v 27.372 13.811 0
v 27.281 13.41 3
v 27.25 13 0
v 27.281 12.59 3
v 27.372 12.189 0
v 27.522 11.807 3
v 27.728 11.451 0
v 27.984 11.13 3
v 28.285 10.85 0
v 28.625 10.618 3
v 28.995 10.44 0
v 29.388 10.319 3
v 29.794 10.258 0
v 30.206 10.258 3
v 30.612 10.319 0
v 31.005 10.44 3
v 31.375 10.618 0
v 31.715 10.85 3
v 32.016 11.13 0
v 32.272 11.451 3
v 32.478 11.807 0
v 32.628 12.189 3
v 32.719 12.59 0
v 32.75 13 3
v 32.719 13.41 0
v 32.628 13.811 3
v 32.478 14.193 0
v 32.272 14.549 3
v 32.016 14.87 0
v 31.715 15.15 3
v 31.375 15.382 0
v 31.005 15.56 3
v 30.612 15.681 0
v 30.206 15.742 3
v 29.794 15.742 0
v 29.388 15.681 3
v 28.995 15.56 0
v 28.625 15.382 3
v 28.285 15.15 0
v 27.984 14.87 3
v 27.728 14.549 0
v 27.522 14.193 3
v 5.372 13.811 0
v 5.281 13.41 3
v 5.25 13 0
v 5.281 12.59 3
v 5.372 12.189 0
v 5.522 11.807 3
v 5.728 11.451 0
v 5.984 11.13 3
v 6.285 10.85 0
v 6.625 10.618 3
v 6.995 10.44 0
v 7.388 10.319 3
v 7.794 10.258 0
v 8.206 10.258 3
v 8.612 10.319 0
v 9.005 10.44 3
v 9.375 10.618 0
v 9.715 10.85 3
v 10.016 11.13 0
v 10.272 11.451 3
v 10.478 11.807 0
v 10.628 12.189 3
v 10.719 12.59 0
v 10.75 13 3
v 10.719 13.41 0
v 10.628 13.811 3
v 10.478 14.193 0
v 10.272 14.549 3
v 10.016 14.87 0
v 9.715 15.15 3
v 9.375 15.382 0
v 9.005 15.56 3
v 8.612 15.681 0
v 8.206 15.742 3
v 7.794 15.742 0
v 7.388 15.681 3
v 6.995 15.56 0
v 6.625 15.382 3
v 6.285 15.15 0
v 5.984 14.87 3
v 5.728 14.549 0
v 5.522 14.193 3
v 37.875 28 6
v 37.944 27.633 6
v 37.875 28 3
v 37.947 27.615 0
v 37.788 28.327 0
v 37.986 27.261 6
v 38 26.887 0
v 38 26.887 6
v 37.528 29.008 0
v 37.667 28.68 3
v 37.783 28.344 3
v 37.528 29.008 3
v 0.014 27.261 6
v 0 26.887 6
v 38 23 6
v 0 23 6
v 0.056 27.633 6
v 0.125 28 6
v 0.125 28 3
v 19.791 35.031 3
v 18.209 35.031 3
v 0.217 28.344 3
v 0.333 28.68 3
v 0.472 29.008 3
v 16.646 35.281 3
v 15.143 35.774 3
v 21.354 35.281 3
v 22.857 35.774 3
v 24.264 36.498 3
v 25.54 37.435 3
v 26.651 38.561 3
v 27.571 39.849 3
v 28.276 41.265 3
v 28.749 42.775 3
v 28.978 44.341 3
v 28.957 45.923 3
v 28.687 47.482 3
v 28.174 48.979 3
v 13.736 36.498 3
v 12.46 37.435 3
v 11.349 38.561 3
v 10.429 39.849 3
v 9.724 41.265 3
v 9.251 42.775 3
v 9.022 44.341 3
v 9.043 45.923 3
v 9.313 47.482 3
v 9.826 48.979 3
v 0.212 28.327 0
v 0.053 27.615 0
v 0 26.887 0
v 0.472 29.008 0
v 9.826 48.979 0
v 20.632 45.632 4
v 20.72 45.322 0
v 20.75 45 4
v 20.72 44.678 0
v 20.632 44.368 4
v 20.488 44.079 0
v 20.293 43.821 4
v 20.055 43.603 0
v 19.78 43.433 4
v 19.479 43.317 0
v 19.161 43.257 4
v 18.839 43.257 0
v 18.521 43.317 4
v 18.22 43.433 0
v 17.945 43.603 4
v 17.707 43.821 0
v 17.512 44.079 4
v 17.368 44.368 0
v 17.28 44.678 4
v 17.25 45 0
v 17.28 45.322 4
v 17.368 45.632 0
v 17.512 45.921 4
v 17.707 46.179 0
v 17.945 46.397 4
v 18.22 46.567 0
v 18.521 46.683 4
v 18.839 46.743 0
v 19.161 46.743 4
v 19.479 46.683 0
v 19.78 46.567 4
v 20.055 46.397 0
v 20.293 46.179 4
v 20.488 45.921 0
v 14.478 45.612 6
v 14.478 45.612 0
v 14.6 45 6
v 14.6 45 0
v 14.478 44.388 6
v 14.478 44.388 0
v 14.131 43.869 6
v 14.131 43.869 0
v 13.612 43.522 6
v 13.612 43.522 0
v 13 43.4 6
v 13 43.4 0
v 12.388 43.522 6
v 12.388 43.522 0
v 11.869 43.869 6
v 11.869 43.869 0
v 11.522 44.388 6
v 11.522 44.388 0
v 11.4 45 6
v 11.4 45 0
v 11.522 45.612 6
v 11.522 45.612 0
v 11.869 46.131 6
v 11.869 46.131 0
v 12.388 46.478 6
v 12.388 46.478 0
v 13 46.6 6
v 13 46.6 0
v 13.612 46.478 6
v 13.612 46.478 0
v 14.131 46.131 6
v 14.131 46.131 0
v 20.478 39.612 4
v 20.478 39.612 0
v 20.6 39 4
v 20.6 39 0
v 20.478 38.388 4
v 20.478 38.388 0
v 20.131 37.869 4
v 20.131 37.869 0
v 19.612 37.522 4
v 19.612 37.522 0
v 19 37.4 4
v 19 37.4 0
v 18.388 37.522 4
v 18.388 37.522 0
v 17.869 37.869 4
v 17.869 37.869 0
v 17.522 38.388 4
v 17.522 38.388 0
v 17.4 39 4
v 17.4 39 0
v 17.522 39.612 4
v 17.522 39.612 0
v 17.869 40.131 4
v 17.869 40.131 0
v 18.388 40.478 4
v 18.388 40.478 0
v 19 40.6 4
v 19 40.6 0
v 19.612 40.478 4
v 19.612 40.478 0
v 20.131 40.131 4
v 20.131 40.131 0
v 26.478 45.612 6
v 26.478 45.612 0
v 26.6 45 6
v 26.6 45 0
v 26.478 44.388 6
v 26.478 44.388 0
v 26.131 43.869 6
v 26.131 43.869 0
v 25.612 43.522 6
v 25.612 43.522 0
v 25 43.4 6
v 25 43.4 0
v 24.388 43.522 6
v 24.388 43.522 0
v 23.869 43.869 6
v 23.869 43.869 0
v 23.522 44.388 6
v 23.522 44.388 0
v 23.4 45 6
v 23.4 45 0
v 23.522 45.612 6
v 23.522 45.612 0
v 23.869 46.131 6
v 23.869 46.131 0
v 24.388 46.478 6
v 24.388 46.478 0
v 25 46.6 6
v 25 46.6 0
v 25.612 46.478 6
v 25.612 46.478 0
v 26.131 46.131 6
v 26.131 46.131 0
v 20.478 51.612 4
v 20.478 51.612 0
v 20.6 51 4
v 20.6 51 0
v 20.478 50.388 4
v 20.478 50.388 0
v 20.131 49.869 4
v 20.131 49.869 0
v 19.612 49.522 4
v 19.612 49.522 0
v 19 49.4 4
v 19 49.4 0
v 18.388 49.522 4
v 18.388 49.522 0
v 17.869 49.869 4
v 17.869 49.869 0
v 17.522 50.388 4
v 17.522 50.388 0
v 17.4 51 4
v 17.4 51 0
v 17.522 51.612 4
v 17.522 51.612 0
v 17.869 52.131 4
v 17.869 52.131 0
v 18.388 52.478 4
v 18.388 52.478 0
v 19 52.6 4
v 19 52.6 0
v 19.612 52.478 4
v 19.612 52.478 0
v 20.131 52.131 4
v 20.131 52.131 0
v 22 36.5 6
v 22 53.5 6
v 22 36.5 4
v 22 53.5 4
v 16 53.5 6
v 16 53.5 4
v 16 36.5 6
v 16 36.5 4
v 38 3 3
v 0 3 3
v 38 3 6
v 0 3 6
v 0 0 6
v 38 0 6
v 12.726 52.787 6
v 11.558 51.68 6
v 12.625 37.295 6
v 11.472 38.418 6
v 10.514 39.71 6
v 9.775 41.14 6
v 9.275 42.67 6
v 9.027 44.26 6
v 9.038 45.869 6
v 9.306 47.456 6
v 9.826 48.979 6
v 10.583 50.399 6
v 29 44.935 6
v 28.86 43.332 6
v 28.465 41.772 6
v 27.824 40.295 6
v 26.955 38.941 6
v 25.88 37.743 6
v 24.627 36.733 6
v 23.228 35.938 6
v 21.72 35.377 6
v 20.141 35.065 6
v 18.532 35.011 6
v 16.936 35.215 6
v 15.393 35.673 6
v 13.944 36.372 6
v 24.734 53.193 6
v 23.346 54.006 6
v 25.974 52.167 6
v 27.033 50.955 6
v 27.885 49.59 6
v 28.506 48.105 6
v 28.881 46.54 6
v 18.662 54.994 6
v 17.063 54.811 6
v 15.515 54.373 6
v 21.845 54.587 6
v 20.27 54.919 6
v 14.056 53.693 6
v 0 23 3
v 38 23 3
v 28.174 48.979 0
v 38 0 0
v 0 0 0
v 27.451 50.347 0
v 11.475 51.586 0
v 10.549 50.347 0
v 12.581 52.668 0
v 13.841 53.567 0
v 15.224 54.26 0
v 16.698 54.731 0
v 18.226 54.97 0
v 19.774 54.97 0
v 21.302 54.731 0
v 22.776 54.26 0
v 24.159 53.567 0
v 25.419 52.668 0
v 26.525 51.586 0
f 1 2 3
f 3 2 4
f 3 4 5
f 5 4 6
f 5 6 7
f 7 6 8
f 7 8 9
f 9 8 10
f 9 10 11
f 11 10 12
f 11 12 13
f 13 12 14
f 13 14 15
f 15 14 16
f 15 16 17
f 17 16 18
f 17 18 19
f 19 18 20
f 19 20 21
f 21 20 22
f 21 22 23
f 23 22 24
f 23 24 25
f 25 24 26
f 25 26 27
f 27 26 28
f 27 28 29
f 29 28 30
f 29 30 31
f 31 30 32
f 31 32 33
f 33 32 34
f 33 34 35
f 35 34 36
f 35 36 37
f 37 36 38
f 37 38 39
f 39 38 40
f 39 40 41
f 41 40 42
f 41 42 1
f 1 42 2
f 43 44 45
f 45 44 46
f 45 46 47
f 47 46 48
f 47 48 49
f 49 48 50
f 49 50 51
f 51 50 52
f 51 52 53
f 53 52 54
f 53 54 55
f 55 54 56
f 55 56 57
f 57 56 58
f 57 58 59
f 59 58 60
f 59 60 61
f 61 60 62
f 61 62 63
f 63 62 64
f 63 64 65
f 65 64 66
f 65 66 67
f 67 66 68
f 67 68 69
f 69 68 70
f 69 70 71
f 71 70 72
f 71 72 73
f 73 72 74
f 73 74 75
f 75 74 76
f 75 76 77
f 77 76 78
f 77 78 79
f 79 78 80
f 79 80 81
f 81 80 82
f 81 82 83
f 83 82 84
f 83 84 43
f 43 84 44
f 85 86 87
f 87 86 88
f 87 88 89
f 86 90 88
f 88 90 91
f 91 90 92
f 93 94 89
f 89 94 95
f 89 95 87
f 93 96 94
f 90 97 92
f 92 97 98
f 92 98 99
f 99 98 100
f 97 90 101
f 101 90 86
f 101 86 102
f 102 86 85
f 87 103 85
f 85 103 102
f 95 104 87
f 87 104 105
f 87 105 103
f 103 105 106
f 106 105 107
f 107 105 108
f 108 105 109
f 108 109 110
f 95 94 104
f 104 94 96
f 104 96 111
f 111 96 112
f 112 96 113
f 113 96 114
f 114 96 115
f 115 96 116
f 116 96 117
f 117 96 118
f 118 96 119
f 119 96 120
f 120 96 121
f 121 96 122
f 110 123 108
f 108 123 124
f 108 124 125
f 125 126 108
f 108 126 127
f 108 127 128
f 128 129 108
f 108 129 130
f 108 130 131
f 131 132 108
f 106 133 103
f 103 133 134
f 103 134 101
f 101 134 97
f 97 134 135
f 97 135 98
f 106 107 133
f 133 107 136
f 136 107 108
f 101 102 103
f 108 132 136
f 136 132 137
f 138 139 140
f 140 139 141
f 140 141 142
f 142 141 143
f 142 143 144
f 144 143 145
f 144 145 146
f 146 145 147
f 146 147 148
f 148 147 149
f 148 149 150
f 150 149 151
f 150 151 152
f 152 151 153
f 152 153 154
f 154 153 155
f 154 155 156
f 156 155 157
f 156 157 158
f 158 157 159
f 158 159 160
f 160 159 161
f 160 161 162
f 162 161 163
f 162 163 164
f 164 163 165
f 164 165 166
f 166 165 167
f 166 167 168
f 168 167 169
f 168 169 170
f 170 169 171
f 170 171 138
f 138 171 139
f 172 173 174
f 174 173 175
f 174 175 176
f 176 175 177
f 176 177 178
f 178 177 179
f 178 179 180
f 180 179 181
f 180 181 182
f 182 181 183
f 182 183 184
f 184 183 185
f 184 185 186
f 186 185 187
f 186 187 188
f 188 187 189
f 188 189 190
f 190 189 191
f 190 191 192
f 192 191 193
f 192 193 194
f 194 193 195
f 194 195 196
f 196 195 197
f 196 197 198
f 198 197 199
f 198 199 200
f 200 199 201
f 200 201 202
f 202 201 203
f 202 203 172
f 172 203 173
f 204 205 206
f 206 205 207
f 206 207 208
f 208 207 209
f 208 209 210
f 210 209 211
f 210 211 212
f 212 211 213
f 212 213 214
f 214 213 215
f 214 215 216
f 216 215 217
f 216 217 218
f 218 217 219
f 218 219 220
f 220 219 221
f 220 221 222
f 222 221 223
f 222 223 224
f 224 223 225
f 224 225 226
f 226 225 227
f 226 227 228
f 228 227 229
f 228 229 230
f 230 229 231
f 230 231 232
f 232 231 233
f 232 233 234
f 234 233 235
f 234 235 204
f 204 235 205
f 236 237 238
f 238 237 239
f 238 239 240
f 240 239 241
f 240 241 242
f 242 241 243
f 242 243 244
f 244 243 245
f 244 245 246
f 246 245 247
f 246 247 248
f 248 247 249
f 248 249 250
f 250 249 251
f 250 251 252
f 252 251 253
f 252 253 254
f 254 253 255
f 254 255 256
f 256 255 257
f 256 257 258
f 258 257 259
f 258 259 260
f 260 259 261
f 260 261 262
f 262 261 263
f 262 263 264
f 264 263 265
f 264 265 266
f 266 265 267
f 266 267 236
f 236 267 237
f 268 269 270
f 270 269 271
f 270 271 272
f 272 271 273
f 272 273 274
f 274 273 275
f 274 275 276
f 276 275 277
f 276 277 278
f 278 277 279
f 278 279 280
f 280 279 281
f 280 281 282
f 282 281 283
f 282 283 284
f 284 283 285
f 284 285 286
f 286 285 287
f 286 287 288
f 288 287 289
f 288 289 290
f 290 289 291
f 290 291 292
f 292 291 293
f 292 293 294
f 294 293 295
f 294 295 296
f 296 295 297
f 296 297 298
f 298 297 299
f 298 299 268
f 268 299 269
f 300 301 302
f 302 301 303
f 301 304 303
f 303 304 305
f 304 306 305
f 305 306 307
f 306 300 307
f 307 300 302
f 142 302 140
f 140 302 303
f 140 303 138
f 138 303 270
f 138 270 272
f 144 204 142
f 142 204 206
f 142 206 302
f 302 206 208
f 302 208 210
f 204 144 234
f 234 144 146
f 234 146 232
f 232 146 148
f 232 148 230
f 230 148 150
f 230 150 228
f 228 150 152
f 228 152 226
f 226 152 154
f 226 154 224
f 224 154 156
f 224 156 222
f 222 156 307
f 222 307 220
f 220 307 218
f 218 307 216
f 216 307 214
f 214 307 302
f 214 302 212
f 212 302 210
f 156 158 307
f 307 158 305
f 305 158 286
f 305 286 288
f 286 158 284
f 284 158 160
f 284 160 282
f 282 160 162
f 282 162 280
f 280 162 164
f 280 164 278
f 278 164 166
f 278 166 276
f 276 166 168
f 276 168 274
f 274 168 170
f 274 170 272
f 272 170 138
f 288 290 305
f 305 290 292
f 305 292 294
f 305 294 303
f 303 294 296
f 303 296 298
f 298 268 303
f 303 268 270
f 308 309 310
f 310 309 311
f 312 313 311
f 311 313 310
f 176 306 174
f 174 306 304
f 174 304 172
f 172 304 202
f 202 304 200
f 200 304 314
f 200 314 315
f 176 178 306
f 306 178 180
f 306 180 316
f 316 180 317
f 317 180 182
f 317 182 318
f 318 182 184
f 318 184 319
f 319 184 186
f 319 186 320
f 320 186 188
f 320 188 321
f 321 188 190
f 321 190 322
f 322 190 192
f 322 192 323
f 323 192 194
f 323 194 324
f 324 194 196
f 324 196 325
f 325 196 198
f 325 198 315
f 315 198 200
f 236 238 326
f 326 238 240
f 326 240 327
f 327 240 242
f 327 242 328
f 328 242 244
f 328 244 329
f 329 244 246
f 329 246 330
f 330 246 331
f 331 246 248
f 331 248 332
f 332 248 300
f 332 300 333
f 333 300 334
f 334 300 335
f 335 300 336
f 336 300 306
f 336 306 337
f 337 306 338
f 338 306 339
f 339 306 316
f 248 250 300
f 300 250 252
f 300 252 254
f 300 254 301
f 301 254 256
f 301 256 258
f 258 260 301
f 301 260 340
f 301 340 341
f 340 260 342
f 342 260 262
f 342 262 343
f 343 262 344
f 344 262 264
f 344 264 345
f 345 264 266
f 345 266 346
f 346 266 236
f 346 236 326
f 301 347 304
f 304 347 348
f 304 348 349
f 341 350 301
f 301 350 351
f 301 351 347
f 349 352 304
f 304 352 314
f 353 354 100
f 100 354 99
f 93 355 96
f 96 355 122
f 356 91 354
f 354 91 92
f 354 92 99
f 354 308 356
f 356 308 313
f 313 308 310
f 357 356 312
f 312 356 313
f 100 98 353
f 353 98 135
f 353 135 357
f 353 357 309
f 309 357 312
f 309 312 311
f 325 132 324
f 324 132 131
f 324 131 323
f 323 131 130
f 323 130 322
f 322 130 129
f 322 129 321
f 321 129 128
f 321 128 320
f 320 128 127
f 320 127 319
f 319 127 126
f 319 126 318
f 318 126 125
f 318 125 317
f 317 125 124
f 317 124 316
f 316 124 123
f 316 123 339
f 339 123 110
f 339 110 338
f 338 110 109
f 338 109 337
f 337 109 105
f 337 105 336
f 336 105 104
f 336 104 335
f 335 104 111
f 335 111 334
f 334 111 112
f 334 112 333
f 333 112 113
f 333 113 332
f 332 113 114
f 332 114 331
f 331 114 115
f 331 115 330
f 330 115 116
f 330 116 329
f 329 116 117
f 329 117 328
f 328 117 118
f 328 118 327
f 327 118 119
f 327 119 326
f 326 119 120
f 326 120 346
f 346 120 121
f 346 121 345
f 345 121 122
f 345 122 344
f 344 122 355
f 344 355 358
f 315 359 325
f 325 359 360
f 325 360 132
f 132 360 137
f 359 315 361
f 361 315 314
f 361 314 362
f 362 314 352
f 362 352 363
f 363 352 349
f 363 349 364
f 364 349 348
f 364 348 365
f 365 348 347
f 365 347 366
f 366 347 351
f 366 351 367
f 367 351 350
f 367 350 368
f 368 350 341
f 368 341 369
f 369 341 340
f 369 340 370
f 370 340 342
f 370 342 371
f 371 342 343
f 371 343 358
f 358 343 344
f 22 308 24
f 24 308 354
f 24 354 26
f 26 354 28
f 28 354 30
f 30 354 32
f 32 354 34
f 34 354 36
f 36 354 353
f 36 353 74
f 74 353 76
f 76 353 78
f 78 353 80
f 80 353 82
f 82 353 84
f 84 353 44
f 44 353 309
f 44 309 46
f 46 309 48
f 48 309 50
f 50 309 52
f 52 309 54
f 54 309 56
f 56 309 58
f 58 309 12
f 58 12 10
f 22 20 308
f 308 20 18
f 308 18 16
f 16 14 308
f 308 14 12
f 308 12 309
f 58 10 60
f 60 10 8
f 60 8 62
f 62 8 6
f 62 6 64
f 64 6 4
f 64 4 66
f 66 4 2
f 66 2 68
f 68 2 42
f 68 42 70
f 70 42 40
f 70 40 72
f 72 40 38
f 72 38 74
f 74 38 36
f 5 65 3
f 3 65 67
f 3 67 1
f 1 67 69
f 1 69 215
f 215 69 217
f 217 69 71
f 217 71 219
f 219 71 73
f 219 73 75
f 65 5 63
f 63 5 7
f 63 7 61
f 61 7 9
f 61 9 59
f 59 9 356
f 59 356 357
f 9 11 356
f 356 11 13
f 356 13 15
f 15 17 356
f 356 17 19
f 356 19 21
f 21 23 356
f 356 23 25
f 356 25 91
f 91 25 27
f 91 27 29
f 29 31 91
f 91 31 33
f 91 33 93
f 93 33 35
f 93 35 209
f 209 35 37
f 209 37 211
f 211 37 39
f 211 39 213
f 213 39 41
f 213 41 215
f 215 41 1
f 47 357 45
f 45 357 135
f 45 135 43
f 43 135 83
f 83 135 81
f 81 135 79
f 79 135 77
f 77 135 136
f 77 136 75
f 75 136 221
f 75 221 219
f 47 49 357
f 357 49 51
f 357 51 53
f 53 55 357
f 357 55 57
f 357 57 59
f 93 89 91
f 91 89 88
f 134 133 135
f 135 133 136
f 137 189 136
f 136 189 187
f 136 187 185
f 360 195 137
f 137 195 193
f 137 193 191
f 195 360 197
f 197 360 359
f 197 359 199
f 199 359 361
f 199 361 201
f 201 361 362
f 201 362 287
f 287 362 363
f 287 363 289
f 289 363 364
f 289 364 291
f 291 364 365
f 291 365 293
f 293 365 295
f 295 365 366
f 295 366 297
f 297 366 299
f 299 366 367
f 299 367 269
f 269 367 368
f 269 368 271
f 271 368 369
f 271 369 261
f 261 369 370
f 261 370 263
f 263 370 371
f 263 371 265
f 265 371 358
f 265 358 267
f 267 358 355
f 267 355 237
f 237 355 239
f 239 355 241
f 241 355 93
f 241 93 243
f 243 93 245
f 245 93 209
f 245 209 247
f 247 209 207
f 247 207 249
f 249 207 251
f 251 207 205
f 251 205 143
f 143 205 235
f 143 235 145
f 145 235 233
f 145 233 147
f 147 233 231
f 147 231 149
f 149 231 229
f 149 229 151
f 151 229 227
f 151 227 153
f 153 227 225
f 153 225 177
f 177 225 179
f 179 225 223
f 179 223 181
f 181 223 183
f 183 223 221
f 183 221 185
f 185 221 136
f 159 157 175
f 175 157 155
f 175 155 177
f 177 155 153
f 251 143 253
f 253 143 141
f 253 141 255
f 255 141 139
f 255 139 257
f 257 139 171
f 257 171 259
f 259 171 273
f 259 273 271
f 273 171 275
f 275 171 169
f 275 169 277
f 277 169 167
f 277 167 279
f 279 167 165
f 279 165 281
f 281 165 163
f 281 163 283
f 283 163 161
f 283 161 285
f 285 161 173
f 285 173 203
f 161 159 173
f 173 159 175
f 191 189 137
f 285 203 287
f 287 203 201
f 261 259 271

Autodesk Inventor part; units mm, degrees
ref_plane "YZ Plane" through (0, 0, 0) normal (1, 0, 0) x (0, 1, 0)
ref_plane "XZ Plane" through (0, 0, 0) normal (0, 1, 0) x (-1, 0, 0)
ref_plane "XY Plane" through (0, 0, 0) normal (0, 0, 1) x (1, 0, 0)
sketch "スケッチ1" plane through (0, 0, 0) normal (0, 0, 1) x (1, 0, 0)
  line L0 (0, 0) -> (38, 0)
  line L1 (38, 0) -> (38, 28)
  line L2 (0, 28) -> (0, 0)
  circle A0 centre (19, 45) radius 10
  line L3 (19, 45) -> (19, 0)
  line L4 (9, 45) -> (29, 45)
  line L5 (10.069714, 49.5) -> (27.930286, 49.5)
  line L6 (10.069714, 49.5) -> (0, 28)
  line L7 (27.930286, 49.5) -> (38, 28)
  point P0 (28.174131, 48.979363)
  point P1 (9.825869, 48.979363)
  dimension "d0" = 38
  dimension "d1" = 28
  dimension "d3" = 20
  dimension "d56" = 45
  dimension "d71" = 28
  dimension "d73" = 4.5
sketch "スケッチ1 outline for 押し出し1" plane through (0, 0, 0) normal (0, 0, 1) x (1, 0, 0)
  line L0 (9.825869, 48.979363) -> (0, 28)
  line L1 (0, 28) -> (0, 0)
  line L2 (0, 0) -> (38, 0)
  line L3 (38, 0) -> (38, 28)
  line L4 (38, 28) -> (28.174131, 48.979363)
  arc A0 (28.174131, 48.979363) -> (9.825869, 48.979363) centre (19, 45) ccw
extrude "押し出し1" add sketch "スケッチ1 outline for 押し出し1" along normal blind 3
sketch "スケッチ7" plane through (0, 0, 3) normal (0, 0, 1) x (1, 0, 0)
  line L0 (0, 0) -> (38, 0)
  line L1 (38, 0) -> (38, 28)
  line L2 (0, 0) -> (38, 0)
  line L3 (38, 0) -> (38, 3)
  line L4 (38, 3) -> (0, 3)
  line L5 (0, 3) -> (0, 0)
  arc A0 (28.174131, 48.979363) -> (9.825869, 48.979363) centre (19, 45) ccw
  circle A1 centre (19, 45) radius 10
  line L6 (0, 28) -> (0, 0)
  line L7 (0, 28) -> (38, 28)
  line L8 (38, 28) -> (38, 23)
  line L9 (38, 23) -> (0, 23)
  line L10 (0, 23) -> (0, 28)
  point P0 (27.930286, 47.5)
  point P1 (10.069714, 47.5)
  point P2 (0, 23)
  point P3 (29, 43)
  point P4 (9, 43)
  point P5 (10.069714, 47.5)
  point P6 (27.930286, 47.5)
  point P7 (9.486338, 51.080624)
  point P8 (28.513662, 51.080624)
  dimension "d58" = 3
  dimension "d68" = 20
  dimension "d69" = 20
  dimension "d70" = 5
extrude "押し出し4" add sketch "スケッチ7" along normal blind 3 contours L5 L4 L1 L0 | L6 L7 L1 L9 | A1 A0
sketch "スケッチ10" plane through (19, 45, 6) normal (0, 0, 1) x (1, 0, 0)
  line L0 (-3, 8.5) -> (3, 8.5)
  line L1 (3, 8.5) -> (3, -8.5)
  line L2 (3, -8.5) -> (-3, -8.5)
  line L3 (-3, -8.5) -> (-3, 8.5)
  circle A0 centre (0, 0) radius 10 projected
  point P0 (-19, -45)
  dimension "d74" = 8.5
  dimension "d75" = 17
  dimension "d76" = 6
  dimension "d77" = 3
extrude "押し出し7" cut sketch "スケッチ10" against normal blind 2 contours L0 L1 L2 L3
sketch "スケッチ11" plane through (0, 0, 0) normal (0, 0, -1) x (-1, 0, 0)
  arc A0 (-9.825869, 48.979363) -> (-28.174131, 48.979363) centre (-19, 45) ccw
  point P0 (0, 0)
  point P1 (-27.930286, 47.5)
  point P2 (-10.069714, 47.5)
  point P3 (-19, 51)
  point P4 (-25, 45)
  point P5 (-19, 39)
  point P6 (-13, 45)
  dimension "d80" = 6
  dimension "d83" = 360
hole "穴4" at (19, 51, 0) at (25, 45, 0) at (19, 39, 0) at (13, 45, 0) direction (0, 0, 1) diameter 3.2 end through all
sketch "スケッチ12" plane through (0, 0, 0) normal (0, 0, -1) x (-1, 0, 0)
  circle A0 centre (-19, 45) radius 10 projected
  point P0 (0, 0)
hole "穴5" at (19, 45, 0) direction (0, 0, 1) diameter 3.5 end through all
sketch "スケッチ13" plane through (0, 0, 0) normal (0, 0, -1) x (-1, 0, 0)
  circle A0 centre (-19, 45) radius 1.75
  circle A1 centre (-13, 45) radius 1.6
  circle A2 centre (-19, 39) radius 1.6
  circle A3 centre (-25, 45) radius 1.6
  circle A4 centre (-19, 51) radius 1.6
  arc A5 (-9.825869, 48.979363) -> (-28.174131, 48.979363) centre (-19, 45) ccw
  line L0 (-38, 28) -> (-28.174131, 48.979363)
  line L1 (-38, 0) -> (-38, 28)
  line L2 (0, 0) -> (-38, 0)
  line L3 (0, 28) -> (0, 0)
  line L4 (-9.825869, 48.979363) -> (0, 28)
fillet "フィレット1" radius 5 2 edges at (0, 28, 1.5) (38, 28, 1.5)
sketch "スケッチ14" plane through (0, 0, 3) normal (0, 0, 1) x (1, 0, 0)
  line L0 (0, 0) -> (38, 0) projected
  line L1 (0, 23) -> (0, 3) projected
  line L2 (38, 3) -> (38, 23) projected
  point P0 (8, 13)
  point P1 (30, 13)
  dimension "d100" = 13
  dimension "d101" = 13
  dimension "d102" = 8
  dimension "d103" = 8
hole "穴6" at (8, 13, 3) at (30, 13, 3) direction (0, 0, -1) diameter 5.5 end through all
properties part number "robot-arm-frame-base"
